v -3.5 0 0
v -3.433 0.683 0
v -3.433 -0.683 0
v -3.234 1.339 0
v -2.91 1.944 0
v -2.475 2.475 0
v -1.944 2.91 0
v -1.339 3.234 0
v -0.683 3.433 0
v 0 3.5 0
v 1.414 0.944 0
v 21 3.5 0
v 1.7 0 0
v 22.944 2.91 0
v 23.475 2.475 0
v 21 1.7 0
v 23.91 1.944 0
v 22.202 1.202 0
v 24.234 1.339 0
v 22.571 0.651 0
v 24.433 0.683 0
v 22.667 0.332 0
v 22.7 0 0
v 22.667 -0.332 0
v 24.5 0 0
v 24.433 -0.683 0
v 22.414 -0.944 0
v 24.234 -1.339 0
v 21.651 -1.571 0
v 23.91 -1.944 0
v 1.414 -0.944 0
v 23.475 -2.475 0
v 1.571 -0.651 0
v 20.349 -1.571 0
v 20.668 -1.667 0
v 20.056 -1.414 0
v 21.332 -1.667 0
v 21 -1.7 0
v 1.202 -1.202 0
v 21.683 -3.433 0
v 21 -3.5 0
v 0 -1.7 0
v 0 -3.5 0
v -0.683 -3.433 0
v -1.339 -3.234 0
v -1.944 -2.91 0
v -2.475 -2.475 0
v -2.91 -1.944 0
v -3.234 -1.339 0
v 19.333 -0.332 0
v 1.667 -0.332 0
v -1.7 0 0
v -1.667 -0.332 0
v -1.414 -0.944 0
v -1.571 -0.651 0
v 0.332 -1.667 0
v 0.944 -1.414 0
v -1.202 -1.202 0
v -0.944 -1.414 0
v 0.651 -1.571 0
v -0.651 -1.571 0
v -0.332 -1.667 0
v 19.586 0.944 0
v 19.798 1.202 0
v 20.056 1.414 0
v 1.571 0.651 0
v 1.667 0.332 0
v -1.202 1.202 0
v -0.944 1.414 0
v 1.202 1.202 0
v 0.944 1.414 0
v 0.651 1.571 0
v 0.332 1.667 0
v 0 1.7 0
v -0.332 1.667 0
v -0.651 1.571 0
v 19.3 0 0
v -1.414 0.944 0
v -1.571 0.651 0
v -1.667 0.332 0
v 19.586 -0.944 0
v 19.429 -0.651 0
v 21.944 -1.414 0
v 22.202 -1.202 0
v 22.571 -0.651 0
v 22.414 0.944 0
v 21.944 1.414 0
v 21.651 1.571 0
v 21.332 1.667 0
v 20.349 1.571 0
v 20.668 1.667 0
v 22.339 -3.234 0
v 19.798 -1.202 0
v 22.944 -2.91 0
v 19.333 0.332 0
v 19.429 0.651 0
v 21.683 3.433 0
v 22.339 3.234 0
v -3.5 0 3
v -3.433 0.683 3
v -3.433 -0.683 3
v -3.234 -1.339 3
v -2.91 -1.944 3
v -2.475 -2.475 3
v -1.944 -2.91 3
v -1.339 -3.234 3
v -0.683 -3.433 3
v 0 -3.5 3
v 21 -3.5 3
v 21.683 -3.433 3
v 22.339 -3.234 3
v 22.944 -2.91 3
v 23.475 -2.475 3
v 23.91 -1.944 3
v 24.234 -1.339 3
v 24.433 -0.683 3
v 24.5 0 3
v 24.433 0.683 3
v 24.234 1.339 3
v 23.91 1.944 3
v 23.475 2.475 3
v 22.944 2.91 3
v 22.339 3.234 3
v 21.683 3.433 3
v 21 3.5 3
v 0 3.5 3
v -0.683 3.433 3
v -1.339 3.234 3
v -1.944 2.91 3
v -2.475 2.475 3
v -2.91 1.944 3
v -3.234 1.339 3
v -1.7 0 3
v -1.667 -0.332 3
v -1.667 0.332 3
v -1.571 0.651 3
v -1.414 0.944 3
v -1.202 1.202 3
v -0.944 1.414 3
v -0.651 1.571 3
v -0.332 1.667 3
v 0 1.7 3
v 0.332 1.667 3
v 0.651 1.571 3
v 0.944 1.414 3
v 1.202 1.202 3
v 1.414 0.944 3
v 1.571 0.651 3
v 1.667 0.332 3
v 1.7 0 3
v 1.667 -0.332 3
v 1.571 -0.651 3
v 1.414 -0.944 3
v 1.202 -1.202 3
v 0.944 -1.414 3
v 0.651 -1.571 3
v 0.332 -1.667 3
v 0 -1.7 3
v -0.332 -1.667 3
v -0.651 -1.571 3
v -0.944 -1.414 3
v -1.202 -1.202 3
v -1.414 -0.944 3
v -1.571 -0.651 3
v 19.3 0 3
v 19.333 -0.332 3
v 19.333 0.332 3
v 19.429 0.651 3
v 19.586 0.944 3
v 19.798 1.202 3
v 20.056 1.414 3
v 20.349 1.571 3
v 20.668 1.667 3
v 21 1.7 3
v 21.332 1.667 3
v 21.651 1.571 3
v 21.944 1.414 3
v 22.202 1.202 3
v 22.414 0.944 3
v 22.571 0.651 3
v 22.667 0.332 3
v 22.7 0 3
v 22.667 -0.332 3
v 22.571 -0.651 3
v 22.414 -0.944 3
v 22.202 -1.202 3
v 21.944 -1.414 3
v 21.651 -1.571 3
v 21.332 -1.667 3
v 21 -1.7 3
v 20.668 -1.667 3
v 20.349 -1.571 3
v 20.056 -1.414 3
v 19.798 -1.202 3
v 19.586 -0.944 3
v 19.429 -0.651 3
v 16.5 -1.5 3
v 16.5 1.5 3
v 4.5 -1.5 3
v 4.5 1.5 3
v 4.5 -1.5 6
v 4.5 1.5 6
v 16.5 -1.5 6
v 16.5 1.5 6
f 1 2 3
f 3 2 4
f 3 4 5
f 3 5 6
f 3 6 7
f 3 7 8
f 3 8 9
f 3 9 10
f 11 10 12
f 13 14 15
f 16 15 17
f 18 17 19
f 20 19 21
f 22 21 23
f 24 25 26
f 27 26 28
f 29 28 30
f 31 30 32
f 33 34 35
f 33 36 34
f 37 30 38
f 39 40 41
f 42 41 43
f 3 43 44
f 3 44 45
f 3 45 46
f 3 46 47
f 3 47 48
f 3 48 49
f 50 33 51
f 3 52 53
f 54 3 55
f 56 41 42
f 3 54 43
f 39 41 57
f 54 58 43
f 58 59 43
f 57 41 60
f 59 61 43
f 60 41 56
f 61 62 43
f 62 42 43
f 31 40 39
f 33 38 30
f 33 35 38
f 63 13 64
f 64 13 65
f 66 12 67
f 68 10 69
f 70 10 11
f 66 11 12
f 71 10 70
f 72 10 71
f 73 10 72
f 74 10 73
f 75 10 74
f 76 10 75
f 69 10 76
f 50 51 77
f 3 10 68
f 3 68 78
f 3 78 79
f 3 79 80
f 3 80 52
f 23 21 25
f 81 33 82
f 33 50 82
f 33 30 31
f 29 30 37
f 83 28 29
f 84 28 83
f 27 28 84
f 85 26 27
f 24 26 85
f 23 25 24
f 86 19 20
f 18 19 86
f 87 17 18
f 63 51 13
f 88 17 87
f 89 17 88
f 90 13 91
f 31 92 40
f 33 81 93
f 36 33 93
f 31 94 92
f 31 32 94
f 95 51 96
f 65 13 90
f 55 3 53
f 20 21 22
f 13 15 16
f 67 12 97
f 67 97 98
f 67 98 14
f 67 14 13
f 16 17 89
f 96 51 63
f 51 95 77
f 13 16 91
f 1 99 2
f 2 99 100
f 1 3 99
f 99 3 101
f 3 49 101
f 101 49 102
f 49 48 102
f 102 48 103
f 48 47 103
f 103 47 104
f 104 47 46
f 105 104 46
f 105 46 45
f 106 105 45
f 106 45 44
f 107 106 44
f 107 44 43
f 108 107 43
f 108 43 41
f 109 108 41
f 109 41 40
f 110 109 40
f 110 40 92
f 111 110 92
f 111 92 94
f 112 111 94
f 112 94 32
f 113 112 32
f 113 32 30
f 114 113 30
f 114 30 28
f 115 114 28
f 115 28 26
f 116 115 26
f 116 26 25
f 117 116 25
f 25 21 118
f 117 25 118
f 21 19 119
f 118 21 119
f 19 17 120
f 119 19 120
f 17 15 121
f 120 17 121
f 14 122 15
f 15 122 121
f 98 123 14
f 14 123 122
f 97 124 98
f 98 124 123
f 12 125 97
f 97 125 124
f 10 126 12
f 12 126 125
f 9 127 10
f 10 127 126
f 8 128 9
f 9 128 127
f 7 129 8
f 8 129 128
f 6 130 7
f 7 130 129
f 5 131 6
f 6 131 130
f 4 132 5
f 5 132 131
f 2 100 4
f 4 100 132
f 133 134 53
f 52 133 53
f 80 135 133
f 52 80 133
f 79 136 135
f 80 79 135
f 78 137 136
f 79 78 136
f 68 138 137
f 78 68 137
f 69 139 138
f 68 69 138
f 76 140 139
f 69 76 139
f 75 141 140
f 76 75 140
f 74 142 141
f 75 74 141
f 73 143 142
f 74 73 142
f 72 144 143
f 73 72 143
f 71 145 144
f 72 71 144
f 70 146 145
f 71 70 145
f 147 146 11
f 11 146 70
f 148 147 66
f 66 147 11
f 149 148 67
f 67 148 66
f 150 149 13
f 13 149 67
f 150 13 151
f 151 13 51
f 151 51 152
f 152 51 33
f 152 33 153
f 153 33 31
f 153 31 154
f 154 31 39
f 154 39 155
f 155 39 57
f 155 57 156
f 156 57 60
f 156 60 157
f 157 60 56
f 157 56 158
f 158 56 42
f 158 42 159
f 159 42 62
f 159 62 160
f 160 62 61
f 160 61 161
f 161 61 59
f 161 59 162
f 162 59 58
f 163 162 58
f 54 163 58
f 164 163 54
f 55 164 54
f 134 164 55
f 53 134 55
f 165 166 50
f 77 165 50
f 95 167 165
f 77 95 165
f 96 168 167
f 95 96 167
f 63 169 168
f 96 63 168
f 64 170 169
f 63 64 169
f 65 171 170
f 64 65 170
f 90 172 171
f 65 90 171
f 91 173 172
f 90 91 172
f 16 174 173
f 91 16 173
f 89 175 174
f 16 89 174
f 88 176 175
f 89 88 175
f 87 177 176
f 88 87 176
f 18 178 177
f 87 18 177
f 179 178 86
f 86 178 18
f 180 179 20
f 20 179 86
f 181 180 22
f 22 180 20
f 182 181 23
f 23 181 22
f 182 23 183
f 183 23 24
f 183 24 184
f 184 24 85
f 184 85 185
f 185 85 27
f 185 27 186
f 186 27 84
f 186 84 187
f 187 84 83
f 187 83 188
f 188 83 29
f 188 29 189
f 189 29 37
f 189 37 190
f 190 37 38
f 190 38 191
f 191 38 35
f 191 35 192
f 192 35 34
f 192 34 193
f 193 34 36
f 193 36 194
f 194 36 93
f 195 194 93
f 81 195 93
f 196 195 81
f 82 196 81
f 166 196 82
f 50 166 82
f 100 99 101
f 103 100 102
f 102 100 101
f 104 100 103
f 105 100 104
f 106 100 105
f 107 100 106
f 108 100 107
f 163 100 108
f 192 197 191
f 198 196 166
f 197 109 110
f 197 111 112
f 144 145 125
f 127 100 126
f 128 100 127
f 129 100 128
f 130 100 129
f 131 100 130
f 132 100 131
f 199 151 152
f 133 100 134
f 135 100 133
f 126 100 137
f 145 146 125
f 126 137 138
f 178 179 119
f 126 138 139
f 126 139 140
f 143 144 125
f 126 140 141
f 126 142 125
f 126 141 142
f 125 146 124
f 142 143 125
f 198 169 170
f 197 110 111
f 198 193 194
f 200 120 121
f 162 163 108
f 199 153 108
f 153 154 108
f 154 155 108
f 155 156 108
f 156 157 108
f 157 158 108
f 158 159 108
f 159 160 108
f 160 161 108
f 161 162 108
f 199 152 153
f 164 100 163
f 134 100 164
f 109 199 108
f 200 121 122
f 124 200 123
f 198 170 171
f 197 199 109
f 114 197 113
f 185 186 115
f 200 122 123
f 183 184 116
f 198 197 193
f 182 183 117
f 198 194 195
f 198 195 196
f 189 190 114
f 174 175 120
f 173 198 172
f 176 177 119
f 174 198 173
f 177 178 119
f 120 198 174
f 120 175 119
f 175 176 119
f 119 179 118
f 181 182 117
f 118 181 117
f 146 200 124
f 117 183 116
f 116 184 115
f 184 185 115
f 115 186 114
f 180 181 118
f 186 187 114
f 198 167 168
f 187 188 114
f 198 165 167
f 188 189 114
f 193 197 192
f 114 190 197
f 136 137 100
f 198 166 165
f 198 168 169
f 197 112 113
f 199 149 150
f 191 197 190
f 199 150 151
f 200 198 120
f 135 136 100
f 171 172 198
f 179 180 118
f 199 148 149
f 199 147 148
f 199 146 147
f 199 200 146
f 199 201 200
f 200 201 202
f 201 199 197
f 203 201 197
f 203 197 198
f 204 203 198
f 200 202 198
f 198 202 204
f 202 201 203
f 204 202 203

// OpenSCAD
//-- arm1plus1mm.scad by AndrewBCN - November 2014
//-- remix of thing #154834
//-- replaces Brazo.stl with slightly stronger part
//-- and with source file.
//-- GPL V3

arm_th=3;
arm_len=20+1;
arm_wi=7;
$fn=32;

//-- above are exactly same dimensions as original
//-- plus 1mm length

difference() {
  // arm
  union() {
    translate([arm_len/2,0,arm_th/2]) cube([arm_len,arm_wi,arm_th], center=true);
    translate([arm_len/2,0,1.5*arm_th]) cube([12,arm_th,arm_th], center=true);
    translate([0,0,arm_th/2]) cylinder(r=arm_wi/2, h=arm_th, center=true);
    translate([arm_len,0,arm_th/2]) cylinder(r=arm_wi/2, h=arm_th, center=true);
  }
  // holes
  cylinder(r=3.4/2, h=3*arm_th, center=true);
  translate([arm_len,0,0]) cylinder(r=3.4/2, h=3*arm_th, center=true);
}
